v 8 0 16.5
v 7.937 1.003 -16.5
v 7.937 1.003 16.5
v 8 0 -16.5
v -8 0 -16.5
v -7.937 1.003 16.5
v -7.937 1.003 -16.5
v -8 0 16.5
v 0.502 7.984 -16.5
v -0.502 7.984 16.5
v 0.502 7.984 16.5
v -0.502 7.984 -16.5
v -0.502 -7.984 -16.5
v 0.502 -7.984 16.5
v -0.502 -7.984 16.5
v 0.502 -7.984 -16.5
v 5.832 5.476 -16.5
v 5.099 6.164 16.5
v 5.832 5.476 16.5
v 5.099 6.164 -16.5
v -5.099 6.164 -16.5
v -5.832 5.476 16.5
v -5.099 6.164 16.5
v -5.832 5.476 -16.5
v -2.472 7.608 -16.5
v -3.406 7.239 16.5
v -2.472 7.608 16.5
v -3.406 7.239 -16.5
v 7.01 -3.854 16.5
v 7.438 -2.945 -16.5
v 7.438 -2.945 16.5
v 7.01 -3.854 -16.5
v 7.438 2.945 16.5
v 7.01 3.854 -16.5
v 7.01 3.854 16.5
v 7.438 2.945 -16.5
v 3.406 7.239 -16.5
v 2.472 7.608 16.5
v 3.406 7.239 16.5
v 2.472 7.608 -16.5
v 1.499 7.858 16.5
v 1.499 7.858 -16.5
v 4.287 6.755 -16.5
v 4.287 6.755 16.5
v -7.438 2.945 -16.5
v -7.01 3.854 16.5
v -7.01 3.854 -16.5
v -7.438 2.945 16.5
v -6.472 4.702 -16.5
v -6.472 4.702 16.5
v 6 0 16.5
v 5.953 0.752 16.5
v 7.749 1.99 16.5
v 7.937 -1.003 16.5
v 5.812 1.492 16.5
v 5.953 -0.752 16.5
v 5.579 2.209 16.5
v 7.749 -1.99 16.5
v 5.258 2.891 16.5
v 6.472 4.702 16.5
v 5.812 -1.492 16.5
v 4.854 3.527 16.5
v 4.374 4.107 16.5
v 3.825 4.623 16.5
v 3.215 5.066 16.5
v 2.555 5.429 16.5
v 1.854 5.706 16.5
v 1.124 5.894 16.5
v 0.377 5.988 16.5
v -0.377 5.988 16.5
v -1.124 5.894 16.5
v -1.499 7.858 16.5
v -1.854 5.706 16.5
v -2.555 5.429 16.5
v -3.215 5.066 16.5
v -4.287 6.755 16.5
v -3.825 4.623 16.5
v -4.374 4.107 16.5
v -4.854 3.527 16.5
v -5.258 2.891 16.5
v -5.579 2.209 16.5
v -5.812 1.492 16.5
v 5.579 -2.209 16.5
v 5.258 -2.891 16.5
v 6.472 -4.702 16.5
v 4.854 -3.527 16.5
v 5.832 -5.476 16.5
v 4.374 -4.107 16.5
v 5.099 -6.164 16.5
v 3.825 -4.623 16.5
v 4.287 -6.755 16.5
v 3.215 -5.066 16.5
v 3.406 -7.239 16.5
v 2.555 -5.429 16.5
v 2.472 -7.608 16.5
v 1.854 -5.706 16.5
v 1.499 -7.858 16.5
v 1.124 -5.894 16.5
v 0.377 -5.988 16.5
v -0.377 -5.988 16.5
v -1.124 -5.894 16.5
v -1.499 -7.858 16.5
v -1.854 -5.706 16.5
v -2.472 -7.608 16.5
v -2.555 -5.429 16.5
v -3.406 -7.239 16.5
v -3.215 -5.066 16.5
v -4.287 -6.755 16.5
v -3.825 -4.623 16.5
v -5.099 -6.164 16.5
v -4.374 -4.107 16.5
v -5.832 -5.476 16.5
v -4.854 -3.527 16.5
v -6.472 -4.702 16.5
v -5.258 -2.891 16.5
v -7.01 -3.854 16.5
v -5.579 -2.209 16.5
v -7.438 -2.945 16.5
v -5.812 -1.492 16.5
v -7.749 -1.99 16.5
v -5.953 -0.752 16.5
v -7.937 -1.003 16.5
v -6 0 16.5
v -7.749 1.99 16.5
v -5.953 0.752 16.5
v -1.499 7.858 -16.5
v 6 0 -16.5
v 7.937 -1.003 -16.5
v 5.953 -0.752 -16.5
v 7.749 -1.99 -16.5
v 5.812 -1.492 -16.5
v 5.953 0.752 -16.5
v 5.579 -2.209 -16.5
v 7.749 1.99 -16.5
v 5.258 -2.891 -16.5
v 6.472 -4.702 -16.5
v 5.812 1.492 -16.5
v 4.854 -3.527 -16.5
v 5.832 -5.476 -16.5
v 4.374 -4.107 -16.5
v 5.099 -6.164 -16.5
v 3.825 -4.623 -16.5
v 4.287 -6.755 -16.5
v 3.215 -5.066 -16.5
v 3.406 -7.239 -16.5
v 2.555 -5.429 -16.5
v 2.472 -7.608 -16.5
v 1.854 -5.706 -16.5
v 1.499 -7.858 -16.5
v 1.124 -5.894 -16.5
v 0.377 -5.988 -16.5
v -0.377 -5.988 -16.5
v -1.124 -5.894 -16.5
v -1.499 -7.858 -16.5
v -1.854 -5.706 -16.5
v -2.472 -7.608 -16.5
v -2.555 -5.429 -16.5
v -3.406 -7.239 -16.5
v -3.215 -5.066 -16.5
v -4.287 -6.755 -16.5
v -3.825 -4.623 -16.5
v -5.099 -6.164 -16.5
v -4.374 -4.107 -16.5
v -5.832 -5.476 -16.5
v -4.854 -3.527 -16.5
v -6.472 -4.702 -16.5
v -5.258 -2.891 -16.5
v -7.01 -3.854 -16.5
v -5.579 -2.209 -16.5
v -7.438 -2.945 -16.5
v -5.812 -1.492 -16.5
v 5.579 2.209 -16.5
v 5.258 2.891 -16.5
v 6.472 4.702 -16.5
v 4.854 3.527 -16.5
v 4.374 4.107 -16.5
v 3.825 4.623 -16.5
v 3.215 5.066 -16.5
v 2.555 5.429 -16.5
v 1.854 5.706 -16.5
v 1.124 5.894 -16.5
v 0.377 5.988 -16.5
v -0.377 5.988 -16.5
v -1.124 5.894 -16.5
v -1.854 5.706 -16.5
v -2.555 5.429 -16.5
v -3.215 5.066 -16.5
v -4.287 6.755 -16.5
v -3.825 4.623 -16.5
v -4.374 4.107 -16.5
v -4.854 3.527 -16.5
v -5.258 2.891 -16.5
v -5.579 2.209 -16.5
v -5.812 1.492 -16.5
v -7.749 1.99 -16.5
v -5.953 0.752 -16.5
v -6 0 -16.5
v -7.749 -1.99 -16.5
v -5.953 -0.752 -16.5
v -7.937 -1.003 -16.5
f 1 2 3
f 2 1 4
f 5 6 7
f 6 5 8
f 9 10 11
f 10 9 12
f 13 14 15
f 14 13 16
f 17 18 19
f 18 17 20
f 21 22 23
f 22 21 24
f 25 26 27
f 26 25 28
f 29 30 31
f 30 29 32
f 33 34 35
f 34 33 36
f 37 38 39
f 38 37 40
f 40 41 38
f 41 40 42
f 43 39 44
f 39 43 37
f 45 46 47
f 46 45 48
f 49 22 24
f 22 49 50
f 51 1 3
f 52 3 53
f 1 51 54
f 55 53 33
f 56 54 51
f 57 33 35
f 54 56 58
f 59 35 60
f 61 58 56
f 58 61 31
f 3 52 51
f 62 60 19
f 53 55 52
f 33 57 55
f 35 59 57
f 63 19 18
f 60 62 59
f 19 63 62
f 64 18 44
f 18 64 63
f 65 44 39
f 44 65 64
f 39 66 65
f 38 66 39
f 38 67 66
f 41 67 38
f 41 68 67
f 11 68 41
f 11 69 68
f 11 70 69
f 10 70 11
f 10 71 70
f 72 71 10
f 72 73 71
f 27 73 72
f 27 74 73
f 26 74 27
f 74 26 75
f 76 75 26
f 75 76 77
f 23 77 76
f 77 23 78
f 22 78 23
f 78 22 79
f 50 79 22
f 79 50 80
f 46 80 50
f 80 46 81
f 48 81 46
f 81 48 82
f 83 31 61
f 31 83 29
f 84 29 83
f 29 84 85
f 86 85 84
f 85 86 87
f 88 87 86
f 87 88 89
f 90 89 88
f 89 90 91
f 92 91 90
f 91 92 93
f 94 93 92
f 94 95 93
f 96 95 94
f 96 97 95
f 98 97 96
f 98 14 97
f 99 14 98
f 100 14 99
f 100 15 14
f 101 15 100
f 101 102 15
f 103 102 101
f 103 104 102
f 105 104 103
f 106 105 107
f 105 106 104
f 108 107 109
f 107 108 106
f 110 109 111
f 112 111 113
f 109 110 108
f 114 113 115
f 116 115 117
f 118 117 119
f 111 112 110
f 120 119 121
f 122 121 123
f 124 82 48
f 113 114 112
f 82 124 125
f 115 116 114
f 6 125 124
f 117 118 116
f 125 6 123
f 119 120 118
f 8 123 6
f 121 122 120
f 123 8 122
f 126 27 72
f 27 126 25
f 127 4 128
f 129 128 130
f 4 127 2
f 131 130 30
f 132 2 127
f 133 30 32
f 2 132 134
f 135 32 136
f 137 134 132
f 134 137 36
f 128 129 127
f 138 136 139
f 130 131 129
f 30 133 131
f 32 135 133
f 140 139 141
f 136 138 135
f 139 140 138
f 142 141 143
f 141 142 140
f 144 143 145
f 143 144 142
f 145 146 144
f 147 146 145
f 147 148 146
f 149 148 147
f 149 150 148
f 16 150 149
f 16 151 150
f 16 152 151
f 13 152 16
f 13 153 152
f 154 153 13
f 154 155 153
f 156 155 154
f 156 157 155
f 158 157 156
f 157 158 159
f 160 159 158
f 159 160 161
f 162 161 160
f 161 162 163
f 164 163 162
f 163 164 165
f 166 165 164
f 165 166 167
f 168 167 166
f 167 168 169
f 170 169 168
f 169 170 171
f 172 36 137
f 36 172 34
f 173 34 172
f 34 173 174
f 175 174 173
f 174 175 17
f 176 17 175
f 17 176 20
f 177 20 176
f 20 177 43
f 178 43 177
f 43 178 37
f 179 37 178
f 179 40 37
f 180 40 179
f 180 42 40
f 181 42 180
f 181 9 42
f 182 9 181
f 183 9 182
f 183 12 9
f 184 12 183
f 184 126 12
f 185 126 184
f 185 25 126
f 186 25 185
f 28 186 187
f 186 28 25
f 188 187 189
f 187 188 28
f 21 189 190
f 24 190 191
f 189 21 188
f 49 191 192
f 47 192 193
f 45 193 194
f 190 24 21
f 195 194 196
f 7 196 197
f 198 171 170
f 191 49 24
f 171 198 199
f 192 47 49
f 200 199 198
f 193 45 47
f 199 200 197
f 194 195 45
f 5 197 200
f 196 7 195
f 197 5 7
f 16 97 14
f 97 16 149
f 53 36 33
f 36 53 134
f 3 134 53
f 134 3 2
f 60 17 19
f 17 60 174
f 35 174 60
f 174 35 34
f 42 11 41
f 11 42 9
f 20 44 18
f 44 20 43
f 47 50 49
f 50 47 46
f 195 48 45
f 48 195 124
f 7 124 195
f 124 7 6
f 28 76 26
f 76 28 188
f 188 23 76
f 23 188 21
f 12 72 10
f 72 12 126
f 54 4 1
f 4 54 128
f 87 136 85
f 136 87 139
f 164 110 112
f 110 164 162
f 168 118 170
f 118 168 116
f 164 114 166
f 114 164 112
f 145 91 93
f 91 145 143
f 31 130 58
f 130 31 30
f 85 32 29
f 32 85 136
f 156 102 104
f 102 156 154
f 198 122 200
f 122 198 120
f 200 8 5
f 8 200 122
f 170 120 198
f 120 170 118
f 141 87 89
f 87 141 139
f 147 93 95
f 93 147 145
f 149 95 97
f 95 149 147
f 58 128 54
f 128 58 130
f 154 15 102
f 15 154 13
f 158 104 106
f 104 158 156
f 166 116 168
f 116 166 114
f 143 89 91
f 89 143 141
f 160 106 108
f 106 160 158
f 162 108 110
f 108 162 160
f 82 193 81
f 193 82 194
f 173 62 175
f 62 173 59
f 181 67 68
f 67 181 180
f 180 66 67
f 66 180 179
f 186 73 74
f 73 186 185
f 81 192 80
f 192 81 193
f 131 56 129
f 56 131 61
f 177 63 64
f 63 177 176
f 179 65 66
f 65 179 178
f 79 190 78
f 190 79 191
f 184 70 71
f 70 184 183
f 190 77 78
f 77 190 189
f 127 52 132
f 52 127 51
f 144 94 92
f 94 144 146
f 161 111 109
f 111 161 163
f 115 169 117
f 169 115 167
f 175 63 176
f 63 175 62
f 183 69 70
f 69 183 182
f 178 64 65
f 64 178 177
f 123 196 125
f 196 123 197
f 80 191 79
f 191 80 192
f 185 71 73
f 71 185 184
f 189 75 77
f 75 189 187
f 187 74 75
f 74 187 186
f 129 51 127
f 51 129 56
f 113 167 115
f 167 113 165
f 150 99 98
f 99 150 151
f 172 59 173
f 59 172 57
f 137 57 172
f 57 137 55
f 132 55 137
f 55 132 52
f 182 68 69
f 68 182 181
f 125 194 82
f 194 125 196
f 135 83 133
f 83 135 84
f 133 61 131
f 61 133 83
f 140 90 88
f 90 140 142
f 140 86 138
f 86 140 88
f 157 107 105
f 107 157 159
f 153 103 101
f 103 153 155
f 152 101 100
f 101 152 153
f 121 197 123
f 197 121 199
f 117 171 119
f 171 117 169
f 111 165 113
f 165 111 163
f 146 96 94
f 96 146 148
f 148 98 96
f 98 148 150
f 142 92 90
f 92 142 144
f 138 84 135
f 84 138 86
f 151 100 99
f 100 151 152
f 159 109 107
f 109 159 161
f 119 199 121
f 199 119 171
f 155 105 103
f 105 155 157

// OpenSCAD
$fn = 50;


difference() {
	union() {
		translate(v = [0, 0, -16.5000000000]) {
			cylinder(h = 33, r = 8.0000000000);
		}
	}
	union() {
		translate(v = [0, 0, -100.0000000000]) {
			cylinder(h = 200, r = 6);
		}
	}
}
